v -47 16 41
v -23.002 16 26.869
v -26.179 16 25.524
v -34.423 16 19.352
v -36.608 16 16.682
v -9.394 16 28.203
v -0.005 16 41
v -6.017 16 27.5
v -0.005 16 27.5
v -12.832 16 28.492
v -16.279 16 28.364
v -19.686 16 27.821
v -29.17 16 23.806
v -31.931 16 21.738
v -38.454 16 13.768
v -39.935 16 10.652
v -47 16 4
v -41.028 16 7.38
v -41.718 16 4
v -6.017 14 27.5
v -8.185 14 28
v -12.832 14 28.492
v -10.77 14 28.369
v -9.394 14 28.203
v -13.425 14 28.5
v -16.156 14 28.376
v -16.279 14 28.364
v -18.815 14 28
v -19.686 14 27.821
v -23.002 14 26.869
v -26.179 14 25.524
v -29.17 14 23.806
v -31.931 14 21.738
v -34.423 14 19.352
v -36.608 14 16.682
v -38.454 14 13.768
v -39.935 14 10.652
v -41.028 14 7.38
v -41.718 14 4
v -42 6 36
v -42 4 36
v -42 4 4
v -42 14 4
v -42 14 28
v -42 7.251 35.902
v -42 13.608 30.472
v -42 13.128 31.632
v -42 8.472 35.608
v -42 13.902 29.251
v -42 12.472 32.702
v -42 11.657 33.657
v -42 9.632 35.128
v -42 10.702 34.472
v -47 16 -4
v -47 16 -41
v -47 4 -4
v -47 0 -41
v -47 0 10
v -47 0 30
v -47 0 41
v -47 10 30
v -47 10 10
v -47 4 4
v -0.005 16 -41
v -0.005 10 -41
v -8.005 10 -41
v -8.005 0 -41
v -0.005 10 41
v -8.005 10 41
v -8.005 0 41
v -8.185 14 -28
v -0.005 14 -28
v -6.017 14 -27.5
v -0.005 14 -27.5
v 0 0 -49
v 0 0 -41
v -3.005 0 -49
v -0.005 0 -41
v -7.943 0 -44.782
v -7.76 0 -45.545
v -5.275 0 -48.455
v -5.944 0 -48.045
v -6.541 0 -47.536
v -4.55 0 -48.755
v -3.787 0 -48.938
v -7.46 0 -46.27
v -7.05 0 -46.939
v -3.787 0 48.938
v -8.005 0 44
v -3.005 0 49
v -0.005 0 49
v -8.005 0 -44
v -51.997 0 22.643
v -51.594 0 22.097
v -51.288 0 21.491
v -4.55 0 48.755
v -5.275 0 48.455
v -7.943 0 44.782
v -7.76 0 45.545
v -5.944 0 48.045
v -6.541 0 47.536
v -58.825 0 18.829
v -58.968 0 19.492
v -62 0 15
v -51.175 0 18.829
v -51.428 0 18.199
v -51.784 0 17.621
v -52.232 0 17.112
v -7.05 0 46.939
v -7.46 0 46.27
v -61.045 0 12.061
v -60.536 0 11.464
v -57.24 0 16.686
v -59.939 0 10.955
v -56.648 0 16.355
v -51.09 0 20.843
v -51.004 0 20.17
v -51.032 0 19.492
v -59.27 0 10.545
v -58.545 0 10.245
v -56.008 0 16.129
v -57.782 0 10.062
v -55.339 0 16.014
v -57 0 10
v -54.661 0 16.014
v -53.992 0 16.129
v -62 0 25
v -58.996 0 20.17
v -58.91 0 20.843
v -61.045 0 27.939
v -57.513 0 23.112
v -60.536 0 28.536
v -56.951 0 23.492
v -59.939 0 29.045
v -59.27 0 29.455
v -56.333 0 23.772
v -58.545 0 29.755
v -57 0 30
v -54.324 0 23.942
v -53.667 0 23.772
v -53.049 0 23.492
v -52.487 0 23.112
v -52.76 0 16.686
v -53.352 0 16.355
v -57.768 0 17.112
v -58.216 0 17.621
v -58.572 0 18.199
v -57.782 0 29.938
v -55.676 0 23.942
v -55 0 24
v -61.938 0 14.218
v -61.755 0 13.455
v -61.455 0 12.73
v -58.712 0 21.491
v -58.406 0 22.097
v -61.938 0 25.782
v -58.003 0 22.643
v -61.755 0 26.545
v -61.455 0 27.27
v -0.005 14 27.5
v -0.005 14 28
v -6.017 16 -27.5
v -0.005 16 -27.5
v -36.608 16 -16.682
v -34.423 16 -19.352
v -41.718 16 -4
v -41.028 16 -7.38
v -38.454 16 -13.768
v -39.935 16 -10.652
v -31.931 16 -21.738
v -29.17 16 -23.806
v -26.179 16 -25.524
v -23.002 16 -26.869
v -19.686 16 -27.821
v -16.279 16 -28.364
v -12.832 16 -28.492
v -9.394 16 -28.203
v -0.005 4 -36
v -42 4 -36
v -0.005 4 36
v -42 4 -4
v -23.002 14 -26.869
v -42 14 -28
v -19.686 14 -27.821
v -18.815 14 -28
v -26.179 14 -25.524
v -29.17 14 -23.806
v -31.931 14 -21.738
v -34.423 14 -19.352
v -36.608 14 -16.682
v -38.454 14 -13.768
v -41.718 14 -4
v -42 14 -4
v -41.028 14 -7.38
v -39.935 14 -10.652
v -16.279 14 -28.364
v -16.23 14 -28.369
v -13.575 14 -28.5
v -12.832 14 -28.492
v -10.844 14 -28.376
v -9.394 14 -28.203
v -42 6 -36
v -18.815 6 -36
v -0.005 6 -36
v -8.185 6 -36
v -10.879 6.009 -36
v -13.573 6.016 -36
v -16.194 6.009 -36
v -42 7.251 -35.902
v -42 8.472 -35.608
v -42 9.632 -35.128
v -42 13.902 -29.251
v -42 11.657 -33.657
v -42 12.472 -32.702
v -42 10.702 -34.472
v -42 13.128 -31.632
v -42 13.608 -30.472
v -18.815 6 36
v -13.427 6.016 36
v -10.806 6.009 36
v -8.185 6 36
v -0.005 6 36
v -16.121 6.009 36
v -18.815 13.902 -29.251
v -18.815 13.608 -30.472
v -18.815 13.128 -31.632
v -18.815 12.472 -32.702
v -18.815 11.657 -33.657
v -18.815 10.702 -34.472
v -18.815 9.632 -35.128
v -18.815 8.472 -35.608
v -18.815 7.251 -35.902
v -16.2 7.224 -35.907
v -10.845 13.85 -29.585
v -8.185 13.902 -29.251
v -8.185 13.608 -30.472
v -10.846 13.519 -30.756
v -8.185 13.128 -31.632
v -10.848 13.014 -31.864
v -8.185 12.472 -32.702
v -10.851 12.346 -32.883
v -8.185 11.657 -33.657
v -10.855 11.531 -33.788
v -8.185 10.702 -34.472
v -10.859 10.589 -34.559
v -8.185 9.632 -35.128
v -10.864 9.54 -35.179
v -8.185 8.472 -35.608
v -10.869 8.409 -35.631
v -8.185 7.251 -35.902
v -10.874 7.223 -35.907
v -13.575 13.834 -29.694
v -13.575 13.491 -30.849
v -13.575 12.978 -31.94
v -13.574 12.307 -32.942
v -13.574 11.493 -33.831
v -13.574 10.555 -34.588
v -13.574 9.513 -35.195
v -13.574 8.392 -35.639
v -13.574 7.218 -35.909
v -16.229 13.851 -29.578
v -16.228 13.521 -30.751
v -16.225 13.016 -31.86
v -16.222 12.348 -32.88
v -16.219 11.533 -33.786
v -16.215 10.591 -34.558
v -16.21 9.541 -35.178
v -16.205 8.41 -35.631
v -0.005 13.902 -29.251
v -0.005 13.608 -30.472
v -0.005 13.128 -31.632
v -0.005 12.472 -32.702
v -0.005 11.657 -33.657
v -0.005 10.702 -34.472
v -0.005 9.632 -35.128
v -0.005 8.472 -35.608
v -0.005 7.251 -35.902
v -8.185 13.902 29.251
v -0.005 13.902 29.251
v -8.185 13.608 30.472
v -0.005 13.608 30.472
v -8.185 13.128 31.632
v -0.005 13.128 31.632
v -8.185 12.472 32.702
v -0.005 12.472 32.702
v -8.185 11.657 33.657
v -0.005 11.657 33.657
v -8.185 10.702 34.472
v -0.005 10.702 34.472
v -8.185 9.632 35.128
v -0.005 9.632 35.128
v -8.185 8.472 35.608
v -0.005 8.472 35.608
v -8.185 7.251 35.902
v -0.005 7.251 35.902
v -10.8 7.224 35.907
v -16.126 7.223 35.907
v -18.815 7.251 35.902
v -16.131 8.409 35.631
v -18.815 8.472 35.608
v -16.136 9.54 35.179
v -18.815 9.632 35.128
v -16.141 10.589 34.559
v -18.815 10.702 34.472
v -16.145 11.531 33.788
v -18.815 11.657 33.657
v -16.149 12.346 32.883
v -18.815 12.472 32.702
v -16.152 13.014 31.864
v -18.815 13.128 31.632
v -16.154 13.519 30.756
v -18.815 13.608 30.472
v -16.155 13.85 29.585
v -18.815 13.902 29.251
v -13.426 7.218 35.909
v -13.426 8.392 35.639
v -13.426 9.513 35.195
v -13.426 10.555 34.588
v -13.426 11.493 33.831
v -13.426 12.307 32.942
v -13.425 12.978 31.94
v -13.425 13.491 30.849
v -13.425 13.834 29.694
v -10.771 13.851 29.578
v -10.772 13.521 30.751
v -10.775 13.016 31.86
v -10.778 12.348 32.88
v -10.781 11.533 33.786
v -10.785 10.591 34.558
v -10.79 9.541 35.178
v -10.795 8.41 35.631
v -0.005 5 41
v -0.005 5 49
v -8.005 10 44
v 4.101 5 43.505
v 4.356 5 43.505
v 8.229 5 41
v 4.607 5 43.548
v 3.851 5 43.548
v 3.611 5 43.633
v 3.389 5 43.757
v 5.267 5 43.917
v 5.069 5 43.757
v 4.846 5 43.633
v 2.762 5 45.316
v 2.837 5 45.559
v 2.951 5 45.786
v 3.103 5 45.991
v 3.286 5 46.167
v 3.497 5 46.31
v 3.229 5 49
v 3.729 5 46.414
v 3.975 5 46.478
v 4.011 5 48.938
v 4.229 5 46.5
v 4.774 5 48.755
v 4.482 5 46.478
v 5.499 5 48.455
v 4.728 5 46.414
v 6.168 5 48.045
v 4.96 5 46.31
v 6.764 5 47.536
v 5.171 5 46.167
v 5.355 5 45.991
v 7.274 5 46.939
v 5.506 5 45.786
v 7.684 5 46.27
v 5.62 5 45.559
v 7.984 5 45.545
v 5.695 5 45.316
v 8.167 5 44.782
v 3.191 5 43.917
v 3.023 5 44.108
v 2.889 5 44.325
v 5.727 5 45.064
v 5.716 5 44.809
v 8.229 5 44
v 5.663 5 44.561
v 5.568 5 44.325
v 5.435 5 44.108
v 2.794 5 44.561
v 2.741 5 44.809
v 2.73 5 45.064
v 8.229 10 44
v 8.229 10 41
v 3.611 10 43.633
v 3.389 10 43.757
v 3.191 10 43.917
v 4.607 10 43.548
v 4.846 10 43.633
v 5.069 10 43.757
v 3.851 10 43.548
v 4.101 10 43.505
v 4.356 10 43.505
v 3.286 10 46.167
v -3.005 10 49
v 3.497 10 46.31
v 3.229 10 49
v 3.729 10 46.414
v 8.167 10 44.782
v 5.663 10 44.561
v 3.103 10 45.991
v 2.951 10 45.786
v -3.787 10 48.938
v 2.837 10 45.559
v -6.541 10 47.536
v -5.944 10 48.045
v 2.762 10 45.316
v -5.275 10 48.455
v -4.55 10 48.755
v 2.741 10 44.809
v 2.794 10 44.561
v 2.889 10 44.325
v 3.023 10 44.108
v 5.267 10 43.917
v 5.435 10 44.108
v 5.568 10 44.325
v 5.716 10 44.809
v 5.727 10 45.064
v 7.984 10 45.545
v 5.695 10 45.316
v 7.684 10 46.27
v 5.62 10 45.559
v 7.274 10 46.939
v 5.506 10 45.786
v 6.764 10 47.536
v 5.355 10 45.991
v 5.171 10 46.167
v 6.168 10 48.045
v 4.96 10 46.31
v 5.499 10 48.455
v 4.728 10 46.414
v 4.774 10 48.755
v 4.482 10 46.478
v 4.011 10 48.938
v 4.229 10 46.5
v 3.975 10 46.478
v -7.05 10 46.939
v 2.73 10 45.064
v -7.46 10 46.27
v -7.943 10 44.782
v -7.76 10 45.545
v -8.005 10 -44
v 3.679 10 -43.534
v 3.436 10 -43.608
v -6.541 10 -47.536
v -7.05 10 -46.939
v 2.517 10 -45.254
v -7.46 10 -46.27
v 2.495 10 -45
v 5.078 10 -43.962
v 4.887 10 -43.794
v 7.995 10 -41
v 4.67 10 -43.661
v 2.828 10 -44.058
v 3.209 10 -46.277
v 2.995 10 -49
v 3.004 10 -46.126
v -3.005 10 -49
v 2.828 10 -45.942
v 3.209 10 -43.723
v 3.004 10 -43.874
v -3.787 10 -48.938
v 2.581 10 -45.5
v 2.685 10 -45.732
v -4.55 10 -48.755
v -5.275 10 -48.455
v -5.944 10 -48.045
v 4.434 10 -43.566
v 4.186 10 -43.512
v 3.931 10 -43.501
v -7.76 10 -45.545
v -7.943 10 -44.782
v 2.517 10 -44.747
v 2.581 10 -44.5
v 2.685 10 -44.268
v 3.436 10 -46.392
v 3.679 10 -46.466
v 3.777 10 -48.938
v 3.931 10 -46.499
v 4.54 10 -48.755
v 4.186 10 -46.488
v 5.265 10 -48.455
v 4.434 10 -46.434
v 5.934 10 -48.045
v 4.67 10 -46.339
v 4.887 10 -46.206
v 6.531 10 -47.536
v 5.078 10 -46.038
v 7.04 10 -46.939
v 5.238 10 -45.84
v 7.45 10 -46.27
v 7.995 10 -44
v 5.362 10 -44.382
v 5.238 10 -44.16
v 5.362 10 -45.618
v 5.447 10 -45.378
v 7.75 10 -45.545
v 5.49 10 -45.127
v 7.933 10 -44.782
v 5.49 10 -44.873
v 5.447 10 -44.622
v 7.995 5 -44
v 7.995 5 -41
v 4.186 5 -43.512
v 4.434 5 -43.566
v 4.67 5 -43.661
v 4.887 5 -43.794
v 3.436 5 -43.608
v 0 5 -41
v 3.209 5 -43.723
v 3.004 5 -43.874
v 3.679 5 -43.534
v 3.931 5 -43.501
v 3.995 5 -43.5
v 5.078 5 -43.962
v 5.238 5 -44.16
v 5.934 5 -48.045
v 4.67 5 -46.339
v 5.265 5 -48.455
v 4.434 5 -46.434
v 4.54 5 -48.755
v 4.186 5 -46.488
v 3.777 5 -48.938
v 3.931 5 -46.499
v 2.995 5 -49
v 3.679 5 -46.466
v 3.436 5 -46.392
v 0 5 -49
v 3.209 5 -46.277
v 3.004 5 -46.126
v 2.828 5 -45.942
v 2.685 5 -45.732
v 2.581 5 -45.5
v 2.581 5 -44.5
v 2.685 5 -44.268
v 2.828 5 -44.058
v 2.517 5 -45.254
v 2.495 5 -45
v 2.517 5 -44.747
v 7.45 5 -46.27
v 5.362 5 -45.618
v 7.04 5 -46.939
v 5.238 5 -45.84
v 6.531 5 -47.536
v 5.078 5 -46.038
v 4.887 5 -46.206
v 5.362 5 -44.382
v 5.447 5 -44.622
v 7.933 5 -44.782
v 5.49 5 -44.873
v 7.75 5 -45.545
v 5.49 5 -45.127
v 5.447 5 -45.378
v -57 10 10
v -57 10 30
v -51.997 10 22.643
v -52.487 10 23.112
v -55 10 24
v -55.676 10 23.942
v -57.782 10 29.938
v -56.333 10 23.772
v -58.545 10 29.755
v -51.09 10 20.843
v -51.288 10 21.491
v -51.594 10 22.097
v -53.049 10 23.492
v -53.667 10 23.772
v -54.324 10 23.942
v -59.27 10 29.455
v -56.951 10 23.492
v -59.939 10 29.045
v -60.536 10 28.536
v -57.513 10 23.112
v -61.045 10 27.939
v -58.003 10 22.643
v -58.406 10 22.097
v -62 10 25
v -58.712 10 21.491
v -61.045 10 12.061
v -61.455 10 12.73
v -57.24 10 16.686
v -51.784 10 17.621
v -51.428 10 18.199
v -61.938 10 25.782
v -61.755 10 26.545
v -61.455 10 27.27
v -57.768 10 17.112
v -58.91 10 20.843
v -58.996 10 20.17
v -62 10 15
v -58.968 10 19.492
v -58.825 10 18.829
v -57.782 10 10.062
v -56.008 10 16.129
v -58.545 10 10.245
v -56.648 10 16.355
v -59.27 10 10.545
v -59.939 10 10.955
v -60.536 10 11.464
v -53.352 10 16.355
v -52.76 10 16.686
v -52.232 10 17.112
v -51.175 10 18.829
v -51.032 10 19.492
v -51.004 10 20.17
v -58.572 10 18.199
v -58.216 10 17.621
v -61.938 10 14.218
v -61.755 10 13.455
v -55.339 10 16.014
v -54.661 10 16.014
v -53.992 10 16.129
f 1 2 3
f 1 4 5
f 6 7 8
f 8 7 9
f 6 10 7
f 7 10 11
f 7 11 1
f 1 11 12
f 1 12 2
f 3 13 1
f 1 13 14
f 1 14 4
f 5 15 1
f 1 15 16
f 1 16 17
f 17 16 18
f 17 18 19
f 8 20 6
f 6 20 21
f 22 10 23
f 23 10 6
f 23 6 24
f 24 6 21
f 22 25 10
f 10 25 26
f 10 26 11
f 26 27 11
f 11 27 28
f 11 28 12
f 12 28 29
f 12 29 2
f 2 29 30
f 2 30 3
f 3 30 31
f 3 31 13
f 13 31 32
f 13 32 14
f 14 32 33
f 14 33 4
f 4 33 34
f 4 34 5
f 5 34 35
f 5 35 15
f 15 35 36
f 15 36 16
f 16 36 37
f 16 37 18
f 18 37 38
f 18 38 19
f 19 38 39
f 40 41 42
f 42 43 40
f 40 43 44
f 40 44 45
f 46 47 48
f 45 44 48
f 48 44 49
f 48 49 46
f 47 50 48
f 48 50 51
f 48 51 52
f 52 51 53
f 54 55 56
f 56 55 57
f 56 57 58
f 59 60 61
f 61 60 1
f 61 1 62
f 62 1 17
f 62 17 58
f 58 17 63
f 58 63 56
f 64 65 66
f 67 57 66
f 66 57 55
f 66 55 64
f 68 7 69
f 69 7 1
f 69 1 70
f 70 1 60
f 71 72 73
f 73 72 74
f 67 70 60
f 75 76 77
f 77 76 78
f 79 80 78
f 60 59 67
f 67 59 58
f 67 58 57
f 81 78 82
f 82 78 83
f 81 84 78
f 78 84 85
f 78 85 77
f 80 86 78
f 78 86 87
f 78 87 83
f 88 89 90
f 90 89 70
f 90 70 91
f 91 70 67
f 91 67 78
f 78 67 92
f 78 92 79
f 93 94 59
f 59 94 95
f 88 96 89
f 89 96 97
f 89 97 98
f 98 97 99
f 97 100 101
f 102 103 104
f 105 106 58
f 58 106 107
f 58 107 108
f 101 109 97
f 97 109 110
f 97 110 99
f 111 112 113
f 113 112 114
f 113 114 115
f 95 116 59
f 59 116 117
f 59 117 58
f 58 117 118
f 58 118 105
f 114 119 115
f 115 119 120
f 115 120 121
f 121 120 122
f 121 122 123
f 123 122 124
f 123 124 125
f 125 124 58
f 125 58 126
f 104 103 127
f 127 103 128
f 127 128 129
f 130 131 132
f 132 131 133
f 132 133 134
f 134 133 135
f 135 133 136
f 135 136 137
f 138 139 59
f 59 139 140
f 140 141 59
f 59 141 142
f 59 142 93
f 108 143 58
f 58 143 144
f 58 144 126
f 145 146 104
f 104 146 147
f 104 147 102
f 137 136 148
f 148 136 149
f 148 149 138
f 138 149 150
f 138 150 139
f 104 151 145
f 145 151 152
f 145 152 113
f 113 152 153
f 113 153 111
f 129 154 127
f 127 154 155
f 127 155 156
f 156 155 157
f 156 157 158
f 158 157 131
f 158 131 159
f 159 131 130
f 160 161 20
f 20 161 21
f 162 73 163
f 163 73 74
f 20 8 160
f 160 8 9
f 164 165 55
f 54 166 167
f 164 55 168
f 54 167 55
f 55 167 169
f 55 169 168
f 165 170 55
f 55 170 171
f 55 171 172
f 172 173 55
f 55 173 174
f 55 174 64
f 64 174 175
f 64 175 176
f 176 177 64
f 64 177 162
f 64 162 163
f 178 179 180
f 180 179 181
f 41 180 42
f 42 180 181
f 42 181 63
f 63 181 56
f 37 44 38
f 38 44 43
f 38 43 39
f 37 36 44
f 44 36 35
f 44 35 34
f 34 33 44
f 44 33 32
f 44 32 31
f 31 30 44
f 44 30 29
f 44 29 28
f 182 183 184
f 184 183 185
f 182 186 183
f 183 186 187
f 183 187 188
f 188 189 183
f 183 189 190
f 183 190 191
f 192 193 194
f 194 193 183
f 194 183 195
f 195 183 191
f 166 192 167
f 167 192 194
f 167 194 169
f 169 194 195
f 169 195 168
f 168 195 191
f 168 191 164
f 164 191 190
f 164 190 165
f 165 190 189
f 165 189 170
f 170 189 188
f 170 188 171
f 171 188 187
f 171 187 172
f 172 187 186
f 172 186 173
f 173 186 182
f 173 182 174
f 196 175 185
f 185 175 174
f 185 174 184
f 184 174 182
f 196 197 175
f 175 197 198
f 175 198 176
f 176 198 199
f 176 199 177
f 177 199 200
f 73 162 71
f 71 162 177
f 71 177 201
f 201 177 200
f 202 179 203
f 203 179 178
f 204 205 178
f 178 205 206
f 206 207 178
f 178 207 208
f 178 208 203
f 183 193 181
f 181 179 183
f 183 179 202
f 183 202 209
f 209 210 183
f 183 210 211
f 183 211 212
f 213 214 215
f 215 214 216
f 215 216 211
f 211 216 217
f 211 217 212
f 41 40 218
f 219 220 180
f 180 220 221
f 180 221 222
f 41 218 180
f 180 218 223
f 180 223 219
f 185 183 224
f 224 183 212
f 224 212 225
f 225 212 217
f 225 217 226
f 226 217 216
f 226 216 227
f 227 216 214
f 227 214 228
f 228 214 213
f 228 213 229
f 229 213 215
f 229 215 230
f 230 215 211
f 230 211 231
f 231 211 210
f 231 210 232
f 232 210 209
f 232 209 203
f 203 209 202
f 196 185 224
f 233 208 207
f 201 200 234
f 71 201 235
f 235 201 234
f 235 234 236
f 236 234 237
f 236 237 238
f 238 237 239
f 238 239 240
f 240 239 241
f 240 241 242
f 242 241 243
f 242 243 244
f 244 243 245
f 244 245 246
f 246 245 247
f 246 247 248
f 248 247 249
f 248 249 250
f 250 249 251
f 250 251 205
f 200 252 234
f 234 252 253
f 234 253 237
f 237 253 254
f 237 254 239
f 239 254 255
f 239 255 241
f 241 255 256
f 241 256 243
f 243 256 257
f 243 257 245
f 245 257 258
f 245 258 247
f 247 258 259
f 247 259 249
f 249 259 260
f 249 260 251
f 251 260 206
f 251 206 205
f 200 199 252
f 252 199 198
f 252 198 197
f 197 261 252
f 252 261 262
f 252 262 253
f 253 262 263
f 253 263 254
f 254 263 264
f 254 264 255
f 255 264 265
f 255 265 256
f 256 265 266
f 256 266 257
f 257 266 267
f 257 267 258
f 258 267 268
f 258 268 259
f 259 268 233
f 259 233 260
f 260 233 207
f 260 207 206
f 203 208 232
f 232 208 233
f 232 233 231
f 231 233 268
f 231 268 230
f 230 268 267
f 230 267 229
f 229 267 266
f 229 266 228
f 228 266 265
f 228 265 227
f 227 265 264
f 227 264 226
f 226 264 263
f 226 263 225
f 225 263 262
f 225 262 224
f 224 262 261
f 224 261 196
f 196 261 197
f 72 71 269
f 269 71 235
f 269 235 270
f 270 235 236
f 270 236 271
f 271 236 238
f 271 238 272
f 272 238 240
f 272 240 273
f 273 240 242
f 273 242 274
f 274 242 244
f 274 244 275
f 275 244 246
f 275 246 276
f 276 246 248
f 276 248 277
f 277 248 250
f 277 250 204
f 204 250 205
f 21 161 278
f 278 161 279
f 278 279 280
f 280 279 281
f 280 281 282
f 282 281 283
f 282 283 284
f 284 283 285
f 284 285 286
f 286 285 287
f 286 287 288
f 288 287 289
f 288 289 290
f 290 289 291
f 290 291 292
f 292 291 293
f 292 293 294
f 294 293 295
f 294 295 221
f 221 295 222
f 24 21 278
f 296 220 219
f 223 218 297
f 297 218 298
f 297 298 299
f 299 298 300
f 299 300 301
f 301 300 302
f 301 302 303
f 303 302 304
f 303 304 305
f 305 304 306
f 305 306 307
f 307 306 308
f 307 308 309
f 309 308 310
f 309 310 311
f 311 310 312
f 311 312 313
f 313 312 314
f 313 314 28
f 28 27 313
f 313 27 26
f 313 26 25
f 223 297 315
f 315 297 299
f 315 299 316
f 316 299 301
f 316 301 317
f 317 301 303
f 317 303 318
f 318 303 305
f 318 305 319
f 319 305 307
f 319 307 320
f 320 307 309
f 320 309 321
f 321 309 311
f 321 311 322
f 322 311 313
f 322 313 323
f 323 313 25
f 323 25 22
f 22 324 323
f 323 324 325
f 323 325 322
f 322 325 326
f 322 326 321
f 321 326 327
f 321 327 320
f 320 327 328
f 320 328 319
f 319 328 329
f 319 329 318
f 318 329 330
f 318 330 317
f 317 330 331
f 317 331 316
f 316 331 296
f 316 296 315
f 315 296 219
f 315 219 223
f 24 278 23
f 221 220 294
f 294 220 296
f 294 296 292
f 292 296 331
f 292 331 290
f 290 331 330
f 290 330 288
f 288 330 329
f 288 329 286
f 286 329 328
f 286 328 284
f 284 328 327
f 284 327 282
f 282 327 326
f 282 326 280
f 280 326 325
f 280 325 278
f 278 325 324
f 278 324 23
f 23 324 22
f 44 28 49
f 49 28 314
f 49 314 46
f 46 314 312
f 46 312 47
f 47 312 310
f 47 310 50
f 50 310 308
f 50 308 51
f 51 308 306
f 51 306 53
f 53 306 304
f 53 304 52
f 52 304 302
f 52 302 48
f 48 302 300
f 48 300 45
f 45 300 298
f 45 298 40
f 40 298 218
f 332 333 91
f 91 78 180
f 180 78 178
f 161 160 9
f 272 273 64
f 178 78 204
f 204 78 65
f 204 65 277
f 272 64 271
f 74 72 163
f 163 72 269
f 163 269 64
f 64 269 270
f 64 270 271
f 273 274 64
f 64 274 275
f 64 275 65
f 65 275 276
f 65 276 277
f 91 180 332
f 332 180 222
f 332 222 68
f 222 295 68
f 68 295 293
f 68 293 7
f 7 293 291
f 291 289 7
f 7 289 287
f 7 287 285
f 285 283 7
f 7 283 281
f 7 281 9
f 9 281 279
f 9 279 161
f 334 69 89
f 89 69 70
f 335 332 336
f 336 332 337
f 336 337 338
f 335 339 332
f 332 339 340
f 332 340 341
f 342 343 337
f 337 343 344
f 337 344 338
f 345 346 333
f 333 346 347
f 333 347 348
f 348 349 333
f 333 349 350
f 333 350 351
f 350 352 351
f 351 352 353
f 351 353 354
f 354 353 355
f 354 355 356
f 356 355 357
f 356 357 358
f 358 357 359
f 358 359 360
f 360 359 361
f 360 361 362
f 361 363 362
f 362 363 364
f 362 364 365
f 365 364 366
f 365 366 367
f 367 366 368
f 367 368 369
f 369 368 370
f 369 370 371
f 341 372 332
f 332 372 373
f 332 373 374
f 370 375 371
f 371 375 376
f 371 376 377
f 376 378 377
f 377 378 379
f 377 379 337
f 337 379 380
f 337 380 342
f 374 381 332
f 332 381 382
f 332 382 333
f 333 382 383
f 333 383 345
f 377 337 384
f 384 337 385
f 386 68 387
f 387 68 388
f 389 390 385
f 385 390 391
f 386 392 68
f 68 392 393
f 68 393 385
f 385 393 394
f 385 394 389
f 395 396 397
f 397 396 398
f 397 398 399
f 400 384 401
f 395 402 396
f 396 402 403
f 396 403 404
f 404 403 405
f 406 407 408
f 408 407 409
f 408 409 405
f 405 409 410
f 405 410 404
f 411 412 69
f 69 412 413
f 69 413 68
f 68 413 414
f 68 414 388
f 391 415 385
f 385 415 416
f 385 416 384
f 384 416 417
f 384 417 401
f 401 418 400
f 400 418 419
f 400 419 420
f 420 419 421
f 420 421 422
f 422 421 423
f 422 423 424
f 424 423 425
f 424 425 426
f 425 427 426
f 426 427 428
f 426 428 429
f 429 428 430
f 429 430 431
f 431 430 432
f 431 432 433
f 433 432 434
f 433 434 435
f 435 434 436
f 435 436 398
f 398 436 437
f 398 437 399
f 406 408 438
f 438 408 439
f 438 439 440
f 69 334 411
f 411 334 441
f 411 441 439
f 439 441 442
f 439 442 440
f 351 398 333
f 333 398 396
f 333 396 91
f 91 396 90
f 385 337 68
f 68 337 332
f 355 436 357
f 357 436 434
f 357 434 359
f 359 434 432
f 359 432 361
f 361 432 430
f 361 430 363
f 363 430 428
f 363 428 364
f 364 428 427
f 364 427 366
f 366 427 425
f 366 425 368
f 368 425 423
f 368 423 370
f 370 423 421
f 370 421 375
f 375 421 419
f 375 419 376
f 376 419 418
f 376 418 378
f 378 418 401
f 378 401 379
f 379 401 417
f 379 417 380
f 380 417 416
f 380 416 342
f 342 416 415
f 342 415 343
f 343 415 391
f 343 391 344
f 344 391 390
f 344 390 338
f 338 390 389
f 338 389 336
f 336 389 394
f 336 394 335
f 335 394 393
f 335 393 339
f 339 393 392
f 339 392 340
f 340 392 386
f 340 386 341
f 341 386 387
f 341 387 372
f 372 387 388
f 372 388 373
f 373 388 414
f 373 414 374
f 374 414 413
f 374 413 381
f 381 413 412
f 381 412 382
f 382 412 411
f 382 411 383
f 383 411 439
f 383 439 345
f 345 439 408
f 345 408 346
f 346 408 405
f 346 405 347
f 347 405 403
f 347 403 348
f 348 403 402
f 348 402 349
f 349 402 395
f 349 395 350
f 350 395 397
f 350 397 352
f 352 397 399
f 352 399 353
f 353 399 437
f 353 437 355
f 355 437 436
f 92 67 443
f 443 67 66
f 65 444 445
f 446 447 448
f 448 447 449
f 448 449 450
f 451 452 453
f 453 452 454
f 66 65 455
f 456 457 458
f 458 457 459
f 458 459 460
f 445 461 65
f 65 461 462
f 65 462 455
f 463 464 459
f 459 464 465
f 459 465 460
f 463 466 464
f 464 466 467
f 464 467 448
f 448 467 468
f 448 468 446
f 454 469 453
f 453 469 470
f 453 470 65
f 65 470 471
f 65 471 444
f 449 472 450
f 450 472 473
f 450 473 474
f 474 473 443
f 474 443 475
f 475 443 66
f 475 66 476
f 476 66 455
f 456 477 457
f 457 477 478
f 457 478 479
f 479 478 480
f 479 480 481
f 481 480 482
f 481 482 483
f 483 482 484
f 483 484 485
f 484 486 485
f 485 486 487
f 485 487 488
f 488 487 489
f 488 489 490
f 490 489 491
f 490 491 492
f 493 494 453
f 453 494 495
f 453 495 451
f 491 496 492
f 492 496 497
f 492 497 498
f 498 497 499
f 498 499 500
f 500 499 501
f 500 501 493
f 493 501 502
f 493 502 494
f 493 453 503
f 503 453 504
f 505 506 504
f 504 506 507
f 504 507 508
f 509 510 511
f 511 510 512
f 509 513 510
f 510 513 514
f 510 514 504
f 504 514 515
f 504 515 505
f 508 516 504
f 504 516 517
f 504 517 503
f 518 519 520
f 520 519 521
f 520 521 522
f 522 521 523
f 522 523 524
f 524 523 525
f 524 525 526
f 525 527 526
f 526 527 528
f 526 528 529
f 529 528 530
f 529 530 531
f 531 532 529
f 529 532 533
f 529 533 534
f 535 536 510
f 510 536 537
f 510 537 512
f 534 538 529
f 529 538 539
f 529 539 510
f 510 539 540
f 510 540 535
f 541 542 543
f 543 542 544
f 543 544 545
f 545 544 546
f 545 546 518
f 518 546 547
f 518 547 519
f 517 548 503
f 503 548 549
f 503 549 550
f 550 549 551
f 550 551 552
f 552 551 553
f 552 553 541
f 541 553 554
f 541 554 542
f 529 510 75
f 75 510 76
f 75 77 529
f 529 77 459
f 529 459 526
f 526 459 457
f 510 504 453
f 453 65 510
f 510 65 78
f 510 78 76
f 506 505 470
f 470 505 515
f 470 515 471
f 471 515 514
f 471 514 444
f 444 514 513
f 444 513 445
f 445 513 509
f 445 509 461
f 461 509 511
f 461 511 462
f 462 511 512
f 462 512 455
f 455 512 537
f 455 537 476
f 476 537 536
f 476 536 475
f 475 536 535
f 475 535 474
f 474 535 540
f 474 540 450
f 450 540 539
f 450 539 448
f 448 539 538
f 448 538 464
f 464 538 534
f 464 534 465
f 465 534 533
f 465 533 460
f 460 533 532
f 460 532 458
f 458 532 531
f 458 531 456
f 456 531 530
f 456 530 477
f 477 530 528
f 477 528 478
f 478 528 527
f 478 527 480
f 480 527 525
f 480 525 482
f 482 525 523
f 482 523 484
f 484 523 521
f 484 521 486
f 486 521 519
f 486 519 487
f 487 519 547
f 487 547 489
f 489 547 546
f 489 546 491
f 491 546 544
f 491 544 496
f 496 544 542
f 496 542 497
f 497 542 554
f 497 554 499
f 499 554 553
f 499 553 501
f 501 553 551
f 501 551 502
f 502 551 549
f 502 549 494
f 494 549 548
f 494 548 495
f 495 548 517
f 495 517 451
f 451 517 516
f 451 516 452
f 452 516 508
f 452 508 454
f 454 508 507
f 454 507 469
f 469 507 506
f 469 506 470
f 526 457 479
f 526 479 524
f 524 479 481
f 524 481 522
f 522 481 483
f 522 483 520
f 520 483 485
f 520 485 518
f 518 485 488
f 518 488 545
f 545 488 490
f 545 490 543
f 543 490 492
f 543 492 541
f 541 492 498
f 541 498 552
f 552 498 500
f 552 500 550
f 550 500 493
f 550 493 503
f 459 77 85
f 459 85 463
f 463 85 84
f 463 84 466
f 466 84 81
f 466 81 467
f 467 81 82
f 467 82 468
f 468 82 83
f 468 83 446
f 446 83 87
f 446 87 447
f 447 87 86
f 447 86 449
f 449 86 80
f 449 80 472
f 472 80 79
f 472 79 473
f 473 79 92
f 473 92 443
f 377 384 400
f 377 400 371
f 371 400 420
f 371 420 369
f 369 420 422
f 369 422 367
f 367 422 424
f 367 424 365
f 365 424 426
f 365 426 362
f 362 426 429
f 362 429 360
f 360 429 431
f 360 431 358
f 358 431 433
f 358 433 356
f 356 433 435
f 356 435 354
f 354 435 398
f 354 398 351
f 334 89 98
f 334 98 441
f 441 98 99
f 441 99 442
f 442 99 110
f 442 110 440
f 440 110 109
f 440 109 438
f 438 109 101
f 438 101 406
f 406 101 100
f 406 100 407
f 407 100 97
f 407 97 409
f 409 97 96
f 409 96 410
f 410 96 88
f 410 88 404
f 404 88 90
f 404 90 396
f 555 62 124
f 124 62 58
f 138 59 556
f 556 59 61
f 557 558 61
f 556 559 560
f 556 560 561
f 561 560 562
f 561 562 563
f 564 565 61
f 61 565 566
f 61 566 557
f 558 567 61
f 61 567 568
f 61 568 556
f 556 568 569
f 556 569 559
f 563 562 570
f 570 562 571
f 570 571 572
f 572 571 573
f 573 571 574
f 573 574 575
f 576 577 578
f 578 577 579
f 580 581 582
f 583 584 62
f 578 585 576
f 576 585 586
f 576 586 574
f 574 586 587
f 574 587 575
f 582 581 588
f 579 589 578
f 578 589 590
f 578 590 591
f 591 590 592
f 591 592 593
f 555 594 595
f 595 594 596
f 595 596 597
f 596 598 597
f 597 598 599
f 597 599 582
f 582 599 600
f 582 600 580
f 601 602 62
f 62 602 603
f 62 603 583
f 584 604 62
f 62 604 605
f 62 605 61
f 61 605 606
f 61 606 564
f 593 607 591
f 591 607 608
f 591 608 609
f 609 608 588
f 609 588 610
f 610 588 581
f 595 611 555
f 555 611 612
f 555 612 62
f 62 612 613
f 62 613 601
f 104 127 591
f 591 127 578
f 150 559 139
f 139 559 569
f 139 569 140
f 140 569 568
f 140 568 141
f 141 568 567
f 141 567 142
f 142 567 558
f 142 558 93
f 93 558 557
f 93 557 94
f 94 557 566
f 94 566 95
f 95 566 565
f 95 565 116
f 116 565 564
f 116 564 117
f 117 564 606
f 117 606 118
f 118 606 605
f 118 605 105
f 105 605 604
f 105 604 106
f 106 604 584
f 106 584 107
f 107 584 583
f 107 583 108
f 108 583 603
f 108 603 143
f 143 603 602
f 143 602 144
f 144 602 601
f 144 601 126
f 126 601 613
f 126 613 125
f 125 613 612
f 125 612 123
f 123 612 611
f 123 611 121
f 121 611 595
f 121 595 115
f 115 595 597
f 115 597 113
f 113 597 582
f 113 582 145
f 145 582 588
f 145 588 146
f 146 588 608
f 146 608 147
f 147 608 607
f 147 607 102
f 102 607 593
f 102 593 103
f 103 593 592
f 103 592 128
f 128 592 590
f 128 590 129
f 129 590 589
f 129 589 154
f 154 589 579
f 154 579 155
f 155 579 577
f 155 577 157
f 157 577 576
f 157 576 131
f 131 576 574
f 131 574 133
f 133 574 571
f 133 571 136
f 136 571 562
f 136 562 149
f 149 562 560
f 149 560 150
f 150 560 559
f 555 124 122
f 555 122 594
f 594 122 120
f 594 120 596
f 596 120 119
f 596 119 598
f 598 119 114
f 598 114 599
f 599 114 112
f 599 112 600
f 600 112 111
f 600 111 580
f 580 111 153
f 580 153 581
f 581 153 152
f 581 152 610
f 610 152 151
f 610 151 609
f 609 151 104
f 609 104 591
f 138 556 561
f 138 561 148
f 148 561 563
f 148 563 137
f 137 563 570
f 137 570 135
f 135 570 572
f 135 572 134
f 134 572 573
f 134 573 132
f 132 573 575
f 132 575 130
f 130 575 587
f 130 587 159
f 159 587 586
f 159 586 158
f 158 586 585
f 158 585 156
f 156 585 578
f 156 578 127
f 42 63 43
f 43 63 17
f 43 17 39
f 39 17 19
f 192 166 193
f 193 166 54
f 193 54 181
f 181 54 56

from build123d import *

# Parameters (mm, degrees)
BOSS_EXTRUDE2_DEPTH   = 14
CUT_EXTRUDE1_START    = -10
CUT_EXTRUDE1_DEPTH    = 93.322536556
BOSS_EXTRUDE3_DEPTH   = 2
FILLET6_R             = 8
SKETCH7_W             = 0.005
SKETCH7_H             = 82
CUT_EXTRUDE3_DEPTH    = 83.686153771
BOSS_EXTRUDE4_DEPTH   = 8
BOSS_EXTRUDE5_START   = -2
SKETCH12_W            = 8.228592419
SKETCH12_H            = 4.95
BOSS_EXTRUDE5_DEPTH   = 10
SKETCH9_R             = 1.5
CUT_EXTRUDE4_DEPTH    = 87.029065006
BOSS_EXTRUDE6_DEPTH   = 8
BOSS_EXTRUDE15_START  = -2
SKETCH15_W            = 7.945
SKETCH15_H            = 4.95
BOSS_EXTRUDE15_DEPTH  = 10
SKETCH16_R            = 1.5
CUT_EXTRUDE5_DEPTH    = 87.029065006
FILLET9_R             = 5
FILLET10_R            = 5
FILLET11_R            = 5
FILLET12_R            = 5
FILLET13_R            = 5
BOSS_EXTRUDE16_START  = -4
BOSS_EXTRUDE16_DEPTH  = 10
SKETCH18_R            = 4
CUT_EXTRUDE6_DEPTH    = 93.915997839
SKETCH19_W            = 20
SKETCH19_H            = 10
BOSS_EXTRUDE17_DEPTH  = 15
SKETCH20_R            = 4
CUT_EXTRUDE7_DEPTH    = 93.915997839
FILLET14_R            = 5
CUT_EXTRUDE9_START    = -5.282098
SKETCH21_W            = 8
SKETCH21_H            = 12
CUT_EXTRUDE9_DEPTH    = 5.282098
CROQUIS1_W            = 114.881967112
CROQUIS1_H            = 161.64199769
CORTAR_EXTRUIR2_DEPTH = 4.95
CROQUIS2_W            = 88.205530212
CROQUIS2_H            = 82
CORTAR_EXTRUIR3_DEPTH = 51.95


with BuildPart() as part:
    # Sketch1 → Boss-Extrude2 (new body)
    with BuildSketch(Plane(origin=(0, 0, 0), x_dir=(1, 0, 0), z_dir=(0, 1, 0))):
        with BuildLine():
            Line((0, 41), (-47, 41))
            Line((-47, 41), (-47, -41))
            Line((-47, -41), (0, -41))
            add(Edge.make_bspline(
                [(0, -41), (70, -41), (70, 0), (70, 41), (0, 41)],
                knots=[4.71238898, 4.71238898, 4.71238898, 6.283185307, 6.283185307, 7.853981634, 7.853981634, 7.853981634], degree=2, weights=[1, 0.707106781, 1, 0.707106781, 1]))
        make_face()
    extrude(amount=BOSS_EXTRUDE2_DEPTH)

    # Sketch3 → Cut-Extrude1 (cut, through all)
    with BuildSketch(Plane(origin=(0, 14, 0), x_dir=(1, 0, 0), z_dir=(0, 1, 0)).offset(CUT_EXTRUDE1_START)):
        with BuildLine():
            Line((0, 36), (-42, 36))
            Line((-42, 36), (-42, -36))
            Line((-42, -36), (0, -36))
            add(Edge.make_bspline(
                [(0, -36), (65, -36), (65, 0), (65, 36), (0, 36)],
                knots=[4.71238898, 4.71238898, 4.71238898, 6.283185307, 6.283185307, 7.853981634, 7.853981634, 7.853981634], degree=2, weights=[1, 0.707106781, 1, 0.707106781, 1]))
        make_face()
    extrude(amount=CUT_EXTRUDE1_DEPTH, mode=Mode.SUBTRACT)

    # Sketch5 → Boss-Extrude3 (add)
    with BuildSketch(Plane(origin=(0, 14, 0), x_dir=(1, 0, 0), z_dir=(0, 1, 0))):
        with BuildLine():
            Line((-47, 41), (-47, -41))
            Line((-47, -41), (0, -41))
            add(Edge.make_bspline(
                [(0, -41), (70, -41), (70, 0), (70, 41), (0, 41)],
                knots=[4.71238898, 4.71238898, 4.71238898, 6.283185307, 6.283185307, 7.853981634, 7.853981634, 7.853981634], degree=2, weights=[1, 0.707106781, 1, 0.707106781, 1]))
            Line((0, 41), (-47, 41))
        make_face()
        with BuildLine():
            Line((8.5, 27.5), (-6.016685226, 27.5))
            ThreePointArc((-6.016685226, 27.5), (-42, 0), (-6.016685226, -27.5))
            Line((-6.016685226, -27.5), (8.5, -27.5))
            add(Edge.make_bspline(
                [(8.5, -27.5), (58.152777778, -27.5), (58.152777778, 0), (58.152777778, 27.5), (8.5, 27.5)],
                knots=[1.570796327, 1.570796327, 1.570796327, 3.141592654, 3.141592654, 4.71238898, 4.71238898, 4.71238898], degree=2, weights=[1, 0.707106781, 1, 0.707106781, 1]))
        make_face(mode=Mode.SUBTRACT)
    extrude(amount=BOSS_EXTRUDE3_DEPTH)

    # Fillet6
    fillet6_edges = [part.edges().sort_by_distance(p)[0] for p in [
        (-21, 14, 36),
        (65, 14, 0),
        (-21, 14, -36),
    ]]
    fillet(fillet6_edges, radius=FILLET6_R)

    # Sketch7 → Cut-Extrude3 (cut, through all)
    with BuildSketch(Plane(origin=(0, 16, 0), x_dir=(1, 0, 0), z_dir=(0, 1, 0))):
        with Locations((-0.0025, 0)):
            Rectangle(SKETCH7_W, SKETCH7_H)
    extrude(amount=-CUT_EXTRUDE3_DEPTH, mode=Mode.SUBTRACT)


with BuildPart() as cut_extrude3_piece_1:
    # of the separate pieces the step leaves, piece 1, a body of its own (cut_extrude3_pieces)
    add(part.part.solids().sort_by_distance((0, 6, -36))[0])

    # Sketch12 → Boss-Extrude5 (add)
    with BuildSketch(Plane.XY.offset(41).offset(BOSS_EXTRUDE5_START)):
        with Locations((4.114296209, 2.475)):
            Rectangle(SKETCH12_W, SKETCH12_H)
    extrude(amount=BOSS_EXTRUDE5_DEPTH)


with BuildPart() as cut_extrude3_piece_2:
    # of the separate pieces the step leaves, piece 2, a body of its own (cut_extrude3_pieces)
    add(part.part.solids().sort_by_distance((-42, 14, -28))[0])

    # Sketch8 → Boss-Extrude4 (add)
    with BuildSketch(Plane.XY.offset(41)):
        Polygon((-8.005, 0), (-0.005, 0), (-0.005, 5), (8.228592419, 5), (8.228592419, 10), (0, 10), (-8.005, 10), align=None)
    extrude(amount=BOSS_EXTRUDE4_DEPTH)


with BuildPart() as cut_extrude4_tool:
    # Sketch9 → Cut-Extrude4 (new, through all)
    with BuildSketch(Plane(origin=(0, 10, 0), x_dir=(1, 0, 0), z_dir=(0, 1, 0))):
        with Locations(Location((4.228592419, -45, 0), (0, 0, 270))):
            Circle(SKETCH9_R)
    extrude(amount=-CUT_EXTRUDE4_DEPTH)


with BuildPart() as cut_extrude3_piece_1_1:
    add(cut_extrude3_piece_1.part)

    # Cut-Extrude4: cut by cut_extrude4_tool
    add(cut_extrude4_tool.part, mode=Mode.SUBTRACT)

    # Sketch15 → Boss-Extrude15 (add)
    with BuildSketch(Plane(origin=(0, 0, -41), x_dir=(-1, 0, 0), z_dir=(0, 0, -1)).offset(BOSS_EXTRUDE15_START)):
        with Locations((-4.0225, 2.475)):
            Rectangle(SKETCH15_W, SKETCH15_H)
    extrude(amount=BOSS_EXTRUDE15_DEPTH)


with BuildPart() as cut_extrude3_piece_2_1:
    add(cut_extrude3_piece_2.part)

    # Cut-Extrude4: cut by cut_extrude4_tool
    add(cut_extrude4_tool.part, mode=Mode.SUBTRACT)

    # Sketch14 → Boss-Extrude6 (add)
    with BuildSketch(Plane(origin=(0, 0, -41), x_dir=(-1, 0, 0), z_dir=(0, 0, -1))):
        Polygon((8.005, 0), (0, 0), (0, 5), (-7.995, 5), (-7.995, 10), (8.005, 10), align=None)
    extrude(amount=BOSS_EXTRUDE6_DEPTH)


with BuildPart() as cut_extrude5_tool:
    # Sketch16 → Cut-Extrude5 (new, through all)
    with BuildSketch(Plane(origin=(0, 10, 0), x_dir=(1, 0, 0), z_dir=(0, 1, 0))):
        with Locations(Location((3.995, 45, 0), (0, 0, 180))):
            Circle(SKETCH16_R)
    extrude(amount=-CUT_EXTRUDE5_DEPTH)


with BuildPart() as cut_extrude3_piece_1_2:
    add(cut_extrude3_piece_1_1.part)

    # Cut-Extrude5: cut by cut_extrude5_tool
    add(cut_extrude5_tool.part, mode=Mode.SUBTRACT)

    # Fillet10
    fillet10_edges = [cut_extrude3_piece_1_2.edges().sort_by_distance(p)[0] for p in [
        (7.995, 2.475, -49),
    ]]
    fillet(fillet10_edges, radius=FILLET10_R)

    # Fillet13
    fillet13_edges = [cut_extrude3_piece_1_2.edges().sort_by_distance(p)[0] for p in [
        (8.228592419, 2.475, 49),
    ]]
    fillet(fillet13_edges, radius=FILLET13_R)

    # Sketch13 → Boss-Extrude16 (add)
    with BuildSketch(Plane(origin=(0, 4, 0), x_dir=(1, 0, 0), z_dir=(0, 1, 0)).offset(BOSS_EXTRUDE16_START)):
        with BuildLine():
            Line((77.862579899, -17.449607958), (68.480918968, 8.495153988))
            add(Edge.make_bspline(
                [(25.721063073, -38.131875474), (80.737725462, -25.400755175), (68.480918968, 8.495153988)],
                knots=[5.088647992, 5.088647992, 5.088647992, 6.491896136, 6.491896136, 6.491896136], degree=2, weights=[1, 0.763794923, 1]))
            Line((25.721063073, -38.131875474), (72.500386182, -27.306915105))
            ThreePointArc((72.500386182, -27.306915105), (77.397822901, -23.583909635), (77.862579899, -17.449607958))
        make_face()
    extrude(amount=BOSS_EXTRUDE16_DEPTH)

    # Sketch18 → Cut-Extrude6 (cut, through all)
    with BuildSketch(Plane(origin=(0, 10, 0), x_dir=(1, 0, 0), z_dir=(0, 1, 0))):
        with Locations(Location((70.809530882, -20, 0), (0, 0, 270))):
            Circle(SKETCH18_R)
    extrude(amount=-CUT_EXTRUDE6_DEPTH, mode=Mode.SUBTRACT)

    # Croquis1 → Cortar-Extruir2 (cut)
    with BuildSketch(Plane(origin=(0, 0, 0), x_dir=(-1, 0, 0), z_dir=(0, -1, 0))):
        with Locations((-57.440983556, 31.820998845)):
            Rectangle(CROQUIS1_W, CROQUIS1_H)
    extrude(amount=-CORTAR_EXTRUIR2_DEPTH, mode=Mode.SUBTRACT)

    # Croquis2 → Cortar-Extruir3 (cut)
    with BuildSketch(Plane(origin=(0, 4.95, 0), x_dir=(-1, 0, 0), z_dir=(0, -1, 0))):
        with Locations((-44.102765106, 0)):
            Rectangle(CROQUIS2_W, CROQUIS2_H)
    extrude(amount=-CORTAR_EXTRUIR3_DEPTH, mode=Mode.SUBTRACT)


with BuildPart() as cut_extrude3_piece_2_2:
    add(cut_extrude3_piece_2_1.part)

    # Cut-Extrude5: cut by cut_extrude5_tool
    add(cut_extrude5_tool.part, mode=Mode.SUBTRACT)

    # Fillet9
    fillet9_edges = [cut_extrude3_piece_2_2.edges().sort_by_distance(p)[0] for p in [
        (7.995, 7.5, -49),
    ]]
    fillet(fillet9_edges, radius=FILLET9_R)

    # Fillet11
    fillet11_edges = [cut_extrude3_piece_2_2.edges().sort_by_distance(p)[0] for p in [
        (-8.005, 5, -49),
    ]]
    fillet(fillet11_edges, radius=FILLET11_R)

    # Fillet12
    fillet12_edges = [cut_extrude3_piece_2_2.edges().sort_by_distance(p)[0] for p in [
        (-8.005, 5, 49),
        (8.228592419, 7.5, 49),
    ]]
    fillet(fillet12_edges, radius=FILLET12_R)

    # Sketch19 → Boss-Extrude17 (add)
    with BuildSketch(Plane.ZY.offset(47)):
        with Locations((20, 5)):
            Rectangle(SKETCH19_W, SKETCH19_H)
    extrude(amount=BOSS_EXTRUDE17_DEPTH)

    # Sketch20 → Cut-Extrude7 (cut, through all)
    with BuildSketch(Plane(origin=(0, 10, 0), x_dir=(1, 0, 0), z_dir=(0, 1, 0))):
        with Locations(Location((-55, -20, 0), (0, 0, 270))):
            Circle(SKETCH20_R)
    extrude(amount=-CUT_EXTRUDE7_DEPTH, mode=Mode.SUBTRACT)

    # Fillet14
    fillet14_edges = [cut_extrude3_piece_2_2.edges().sort_by_distance(p)[0] for p in [
        (-62, 5, 10),
        (-62, 5, 30),
    ]]
    fillet(fillet14_edges, radius=FILLET14_R)

    # Sketch21 → Cut-Extrude9 (cut)
    with BuildSketch(Plane.ZY.offset(47).offset(CUT_EXTRUDE9_START)):
        with Locations((0, 10)):
            Rectangle(SKETCH21_W, SKETCH21_H)
    extrude(amount=CUT_EXTRUDE9_DEPTH, mode=Mode.SUBTRACT)


solid = cut_extrude3_piece_2_2.part
